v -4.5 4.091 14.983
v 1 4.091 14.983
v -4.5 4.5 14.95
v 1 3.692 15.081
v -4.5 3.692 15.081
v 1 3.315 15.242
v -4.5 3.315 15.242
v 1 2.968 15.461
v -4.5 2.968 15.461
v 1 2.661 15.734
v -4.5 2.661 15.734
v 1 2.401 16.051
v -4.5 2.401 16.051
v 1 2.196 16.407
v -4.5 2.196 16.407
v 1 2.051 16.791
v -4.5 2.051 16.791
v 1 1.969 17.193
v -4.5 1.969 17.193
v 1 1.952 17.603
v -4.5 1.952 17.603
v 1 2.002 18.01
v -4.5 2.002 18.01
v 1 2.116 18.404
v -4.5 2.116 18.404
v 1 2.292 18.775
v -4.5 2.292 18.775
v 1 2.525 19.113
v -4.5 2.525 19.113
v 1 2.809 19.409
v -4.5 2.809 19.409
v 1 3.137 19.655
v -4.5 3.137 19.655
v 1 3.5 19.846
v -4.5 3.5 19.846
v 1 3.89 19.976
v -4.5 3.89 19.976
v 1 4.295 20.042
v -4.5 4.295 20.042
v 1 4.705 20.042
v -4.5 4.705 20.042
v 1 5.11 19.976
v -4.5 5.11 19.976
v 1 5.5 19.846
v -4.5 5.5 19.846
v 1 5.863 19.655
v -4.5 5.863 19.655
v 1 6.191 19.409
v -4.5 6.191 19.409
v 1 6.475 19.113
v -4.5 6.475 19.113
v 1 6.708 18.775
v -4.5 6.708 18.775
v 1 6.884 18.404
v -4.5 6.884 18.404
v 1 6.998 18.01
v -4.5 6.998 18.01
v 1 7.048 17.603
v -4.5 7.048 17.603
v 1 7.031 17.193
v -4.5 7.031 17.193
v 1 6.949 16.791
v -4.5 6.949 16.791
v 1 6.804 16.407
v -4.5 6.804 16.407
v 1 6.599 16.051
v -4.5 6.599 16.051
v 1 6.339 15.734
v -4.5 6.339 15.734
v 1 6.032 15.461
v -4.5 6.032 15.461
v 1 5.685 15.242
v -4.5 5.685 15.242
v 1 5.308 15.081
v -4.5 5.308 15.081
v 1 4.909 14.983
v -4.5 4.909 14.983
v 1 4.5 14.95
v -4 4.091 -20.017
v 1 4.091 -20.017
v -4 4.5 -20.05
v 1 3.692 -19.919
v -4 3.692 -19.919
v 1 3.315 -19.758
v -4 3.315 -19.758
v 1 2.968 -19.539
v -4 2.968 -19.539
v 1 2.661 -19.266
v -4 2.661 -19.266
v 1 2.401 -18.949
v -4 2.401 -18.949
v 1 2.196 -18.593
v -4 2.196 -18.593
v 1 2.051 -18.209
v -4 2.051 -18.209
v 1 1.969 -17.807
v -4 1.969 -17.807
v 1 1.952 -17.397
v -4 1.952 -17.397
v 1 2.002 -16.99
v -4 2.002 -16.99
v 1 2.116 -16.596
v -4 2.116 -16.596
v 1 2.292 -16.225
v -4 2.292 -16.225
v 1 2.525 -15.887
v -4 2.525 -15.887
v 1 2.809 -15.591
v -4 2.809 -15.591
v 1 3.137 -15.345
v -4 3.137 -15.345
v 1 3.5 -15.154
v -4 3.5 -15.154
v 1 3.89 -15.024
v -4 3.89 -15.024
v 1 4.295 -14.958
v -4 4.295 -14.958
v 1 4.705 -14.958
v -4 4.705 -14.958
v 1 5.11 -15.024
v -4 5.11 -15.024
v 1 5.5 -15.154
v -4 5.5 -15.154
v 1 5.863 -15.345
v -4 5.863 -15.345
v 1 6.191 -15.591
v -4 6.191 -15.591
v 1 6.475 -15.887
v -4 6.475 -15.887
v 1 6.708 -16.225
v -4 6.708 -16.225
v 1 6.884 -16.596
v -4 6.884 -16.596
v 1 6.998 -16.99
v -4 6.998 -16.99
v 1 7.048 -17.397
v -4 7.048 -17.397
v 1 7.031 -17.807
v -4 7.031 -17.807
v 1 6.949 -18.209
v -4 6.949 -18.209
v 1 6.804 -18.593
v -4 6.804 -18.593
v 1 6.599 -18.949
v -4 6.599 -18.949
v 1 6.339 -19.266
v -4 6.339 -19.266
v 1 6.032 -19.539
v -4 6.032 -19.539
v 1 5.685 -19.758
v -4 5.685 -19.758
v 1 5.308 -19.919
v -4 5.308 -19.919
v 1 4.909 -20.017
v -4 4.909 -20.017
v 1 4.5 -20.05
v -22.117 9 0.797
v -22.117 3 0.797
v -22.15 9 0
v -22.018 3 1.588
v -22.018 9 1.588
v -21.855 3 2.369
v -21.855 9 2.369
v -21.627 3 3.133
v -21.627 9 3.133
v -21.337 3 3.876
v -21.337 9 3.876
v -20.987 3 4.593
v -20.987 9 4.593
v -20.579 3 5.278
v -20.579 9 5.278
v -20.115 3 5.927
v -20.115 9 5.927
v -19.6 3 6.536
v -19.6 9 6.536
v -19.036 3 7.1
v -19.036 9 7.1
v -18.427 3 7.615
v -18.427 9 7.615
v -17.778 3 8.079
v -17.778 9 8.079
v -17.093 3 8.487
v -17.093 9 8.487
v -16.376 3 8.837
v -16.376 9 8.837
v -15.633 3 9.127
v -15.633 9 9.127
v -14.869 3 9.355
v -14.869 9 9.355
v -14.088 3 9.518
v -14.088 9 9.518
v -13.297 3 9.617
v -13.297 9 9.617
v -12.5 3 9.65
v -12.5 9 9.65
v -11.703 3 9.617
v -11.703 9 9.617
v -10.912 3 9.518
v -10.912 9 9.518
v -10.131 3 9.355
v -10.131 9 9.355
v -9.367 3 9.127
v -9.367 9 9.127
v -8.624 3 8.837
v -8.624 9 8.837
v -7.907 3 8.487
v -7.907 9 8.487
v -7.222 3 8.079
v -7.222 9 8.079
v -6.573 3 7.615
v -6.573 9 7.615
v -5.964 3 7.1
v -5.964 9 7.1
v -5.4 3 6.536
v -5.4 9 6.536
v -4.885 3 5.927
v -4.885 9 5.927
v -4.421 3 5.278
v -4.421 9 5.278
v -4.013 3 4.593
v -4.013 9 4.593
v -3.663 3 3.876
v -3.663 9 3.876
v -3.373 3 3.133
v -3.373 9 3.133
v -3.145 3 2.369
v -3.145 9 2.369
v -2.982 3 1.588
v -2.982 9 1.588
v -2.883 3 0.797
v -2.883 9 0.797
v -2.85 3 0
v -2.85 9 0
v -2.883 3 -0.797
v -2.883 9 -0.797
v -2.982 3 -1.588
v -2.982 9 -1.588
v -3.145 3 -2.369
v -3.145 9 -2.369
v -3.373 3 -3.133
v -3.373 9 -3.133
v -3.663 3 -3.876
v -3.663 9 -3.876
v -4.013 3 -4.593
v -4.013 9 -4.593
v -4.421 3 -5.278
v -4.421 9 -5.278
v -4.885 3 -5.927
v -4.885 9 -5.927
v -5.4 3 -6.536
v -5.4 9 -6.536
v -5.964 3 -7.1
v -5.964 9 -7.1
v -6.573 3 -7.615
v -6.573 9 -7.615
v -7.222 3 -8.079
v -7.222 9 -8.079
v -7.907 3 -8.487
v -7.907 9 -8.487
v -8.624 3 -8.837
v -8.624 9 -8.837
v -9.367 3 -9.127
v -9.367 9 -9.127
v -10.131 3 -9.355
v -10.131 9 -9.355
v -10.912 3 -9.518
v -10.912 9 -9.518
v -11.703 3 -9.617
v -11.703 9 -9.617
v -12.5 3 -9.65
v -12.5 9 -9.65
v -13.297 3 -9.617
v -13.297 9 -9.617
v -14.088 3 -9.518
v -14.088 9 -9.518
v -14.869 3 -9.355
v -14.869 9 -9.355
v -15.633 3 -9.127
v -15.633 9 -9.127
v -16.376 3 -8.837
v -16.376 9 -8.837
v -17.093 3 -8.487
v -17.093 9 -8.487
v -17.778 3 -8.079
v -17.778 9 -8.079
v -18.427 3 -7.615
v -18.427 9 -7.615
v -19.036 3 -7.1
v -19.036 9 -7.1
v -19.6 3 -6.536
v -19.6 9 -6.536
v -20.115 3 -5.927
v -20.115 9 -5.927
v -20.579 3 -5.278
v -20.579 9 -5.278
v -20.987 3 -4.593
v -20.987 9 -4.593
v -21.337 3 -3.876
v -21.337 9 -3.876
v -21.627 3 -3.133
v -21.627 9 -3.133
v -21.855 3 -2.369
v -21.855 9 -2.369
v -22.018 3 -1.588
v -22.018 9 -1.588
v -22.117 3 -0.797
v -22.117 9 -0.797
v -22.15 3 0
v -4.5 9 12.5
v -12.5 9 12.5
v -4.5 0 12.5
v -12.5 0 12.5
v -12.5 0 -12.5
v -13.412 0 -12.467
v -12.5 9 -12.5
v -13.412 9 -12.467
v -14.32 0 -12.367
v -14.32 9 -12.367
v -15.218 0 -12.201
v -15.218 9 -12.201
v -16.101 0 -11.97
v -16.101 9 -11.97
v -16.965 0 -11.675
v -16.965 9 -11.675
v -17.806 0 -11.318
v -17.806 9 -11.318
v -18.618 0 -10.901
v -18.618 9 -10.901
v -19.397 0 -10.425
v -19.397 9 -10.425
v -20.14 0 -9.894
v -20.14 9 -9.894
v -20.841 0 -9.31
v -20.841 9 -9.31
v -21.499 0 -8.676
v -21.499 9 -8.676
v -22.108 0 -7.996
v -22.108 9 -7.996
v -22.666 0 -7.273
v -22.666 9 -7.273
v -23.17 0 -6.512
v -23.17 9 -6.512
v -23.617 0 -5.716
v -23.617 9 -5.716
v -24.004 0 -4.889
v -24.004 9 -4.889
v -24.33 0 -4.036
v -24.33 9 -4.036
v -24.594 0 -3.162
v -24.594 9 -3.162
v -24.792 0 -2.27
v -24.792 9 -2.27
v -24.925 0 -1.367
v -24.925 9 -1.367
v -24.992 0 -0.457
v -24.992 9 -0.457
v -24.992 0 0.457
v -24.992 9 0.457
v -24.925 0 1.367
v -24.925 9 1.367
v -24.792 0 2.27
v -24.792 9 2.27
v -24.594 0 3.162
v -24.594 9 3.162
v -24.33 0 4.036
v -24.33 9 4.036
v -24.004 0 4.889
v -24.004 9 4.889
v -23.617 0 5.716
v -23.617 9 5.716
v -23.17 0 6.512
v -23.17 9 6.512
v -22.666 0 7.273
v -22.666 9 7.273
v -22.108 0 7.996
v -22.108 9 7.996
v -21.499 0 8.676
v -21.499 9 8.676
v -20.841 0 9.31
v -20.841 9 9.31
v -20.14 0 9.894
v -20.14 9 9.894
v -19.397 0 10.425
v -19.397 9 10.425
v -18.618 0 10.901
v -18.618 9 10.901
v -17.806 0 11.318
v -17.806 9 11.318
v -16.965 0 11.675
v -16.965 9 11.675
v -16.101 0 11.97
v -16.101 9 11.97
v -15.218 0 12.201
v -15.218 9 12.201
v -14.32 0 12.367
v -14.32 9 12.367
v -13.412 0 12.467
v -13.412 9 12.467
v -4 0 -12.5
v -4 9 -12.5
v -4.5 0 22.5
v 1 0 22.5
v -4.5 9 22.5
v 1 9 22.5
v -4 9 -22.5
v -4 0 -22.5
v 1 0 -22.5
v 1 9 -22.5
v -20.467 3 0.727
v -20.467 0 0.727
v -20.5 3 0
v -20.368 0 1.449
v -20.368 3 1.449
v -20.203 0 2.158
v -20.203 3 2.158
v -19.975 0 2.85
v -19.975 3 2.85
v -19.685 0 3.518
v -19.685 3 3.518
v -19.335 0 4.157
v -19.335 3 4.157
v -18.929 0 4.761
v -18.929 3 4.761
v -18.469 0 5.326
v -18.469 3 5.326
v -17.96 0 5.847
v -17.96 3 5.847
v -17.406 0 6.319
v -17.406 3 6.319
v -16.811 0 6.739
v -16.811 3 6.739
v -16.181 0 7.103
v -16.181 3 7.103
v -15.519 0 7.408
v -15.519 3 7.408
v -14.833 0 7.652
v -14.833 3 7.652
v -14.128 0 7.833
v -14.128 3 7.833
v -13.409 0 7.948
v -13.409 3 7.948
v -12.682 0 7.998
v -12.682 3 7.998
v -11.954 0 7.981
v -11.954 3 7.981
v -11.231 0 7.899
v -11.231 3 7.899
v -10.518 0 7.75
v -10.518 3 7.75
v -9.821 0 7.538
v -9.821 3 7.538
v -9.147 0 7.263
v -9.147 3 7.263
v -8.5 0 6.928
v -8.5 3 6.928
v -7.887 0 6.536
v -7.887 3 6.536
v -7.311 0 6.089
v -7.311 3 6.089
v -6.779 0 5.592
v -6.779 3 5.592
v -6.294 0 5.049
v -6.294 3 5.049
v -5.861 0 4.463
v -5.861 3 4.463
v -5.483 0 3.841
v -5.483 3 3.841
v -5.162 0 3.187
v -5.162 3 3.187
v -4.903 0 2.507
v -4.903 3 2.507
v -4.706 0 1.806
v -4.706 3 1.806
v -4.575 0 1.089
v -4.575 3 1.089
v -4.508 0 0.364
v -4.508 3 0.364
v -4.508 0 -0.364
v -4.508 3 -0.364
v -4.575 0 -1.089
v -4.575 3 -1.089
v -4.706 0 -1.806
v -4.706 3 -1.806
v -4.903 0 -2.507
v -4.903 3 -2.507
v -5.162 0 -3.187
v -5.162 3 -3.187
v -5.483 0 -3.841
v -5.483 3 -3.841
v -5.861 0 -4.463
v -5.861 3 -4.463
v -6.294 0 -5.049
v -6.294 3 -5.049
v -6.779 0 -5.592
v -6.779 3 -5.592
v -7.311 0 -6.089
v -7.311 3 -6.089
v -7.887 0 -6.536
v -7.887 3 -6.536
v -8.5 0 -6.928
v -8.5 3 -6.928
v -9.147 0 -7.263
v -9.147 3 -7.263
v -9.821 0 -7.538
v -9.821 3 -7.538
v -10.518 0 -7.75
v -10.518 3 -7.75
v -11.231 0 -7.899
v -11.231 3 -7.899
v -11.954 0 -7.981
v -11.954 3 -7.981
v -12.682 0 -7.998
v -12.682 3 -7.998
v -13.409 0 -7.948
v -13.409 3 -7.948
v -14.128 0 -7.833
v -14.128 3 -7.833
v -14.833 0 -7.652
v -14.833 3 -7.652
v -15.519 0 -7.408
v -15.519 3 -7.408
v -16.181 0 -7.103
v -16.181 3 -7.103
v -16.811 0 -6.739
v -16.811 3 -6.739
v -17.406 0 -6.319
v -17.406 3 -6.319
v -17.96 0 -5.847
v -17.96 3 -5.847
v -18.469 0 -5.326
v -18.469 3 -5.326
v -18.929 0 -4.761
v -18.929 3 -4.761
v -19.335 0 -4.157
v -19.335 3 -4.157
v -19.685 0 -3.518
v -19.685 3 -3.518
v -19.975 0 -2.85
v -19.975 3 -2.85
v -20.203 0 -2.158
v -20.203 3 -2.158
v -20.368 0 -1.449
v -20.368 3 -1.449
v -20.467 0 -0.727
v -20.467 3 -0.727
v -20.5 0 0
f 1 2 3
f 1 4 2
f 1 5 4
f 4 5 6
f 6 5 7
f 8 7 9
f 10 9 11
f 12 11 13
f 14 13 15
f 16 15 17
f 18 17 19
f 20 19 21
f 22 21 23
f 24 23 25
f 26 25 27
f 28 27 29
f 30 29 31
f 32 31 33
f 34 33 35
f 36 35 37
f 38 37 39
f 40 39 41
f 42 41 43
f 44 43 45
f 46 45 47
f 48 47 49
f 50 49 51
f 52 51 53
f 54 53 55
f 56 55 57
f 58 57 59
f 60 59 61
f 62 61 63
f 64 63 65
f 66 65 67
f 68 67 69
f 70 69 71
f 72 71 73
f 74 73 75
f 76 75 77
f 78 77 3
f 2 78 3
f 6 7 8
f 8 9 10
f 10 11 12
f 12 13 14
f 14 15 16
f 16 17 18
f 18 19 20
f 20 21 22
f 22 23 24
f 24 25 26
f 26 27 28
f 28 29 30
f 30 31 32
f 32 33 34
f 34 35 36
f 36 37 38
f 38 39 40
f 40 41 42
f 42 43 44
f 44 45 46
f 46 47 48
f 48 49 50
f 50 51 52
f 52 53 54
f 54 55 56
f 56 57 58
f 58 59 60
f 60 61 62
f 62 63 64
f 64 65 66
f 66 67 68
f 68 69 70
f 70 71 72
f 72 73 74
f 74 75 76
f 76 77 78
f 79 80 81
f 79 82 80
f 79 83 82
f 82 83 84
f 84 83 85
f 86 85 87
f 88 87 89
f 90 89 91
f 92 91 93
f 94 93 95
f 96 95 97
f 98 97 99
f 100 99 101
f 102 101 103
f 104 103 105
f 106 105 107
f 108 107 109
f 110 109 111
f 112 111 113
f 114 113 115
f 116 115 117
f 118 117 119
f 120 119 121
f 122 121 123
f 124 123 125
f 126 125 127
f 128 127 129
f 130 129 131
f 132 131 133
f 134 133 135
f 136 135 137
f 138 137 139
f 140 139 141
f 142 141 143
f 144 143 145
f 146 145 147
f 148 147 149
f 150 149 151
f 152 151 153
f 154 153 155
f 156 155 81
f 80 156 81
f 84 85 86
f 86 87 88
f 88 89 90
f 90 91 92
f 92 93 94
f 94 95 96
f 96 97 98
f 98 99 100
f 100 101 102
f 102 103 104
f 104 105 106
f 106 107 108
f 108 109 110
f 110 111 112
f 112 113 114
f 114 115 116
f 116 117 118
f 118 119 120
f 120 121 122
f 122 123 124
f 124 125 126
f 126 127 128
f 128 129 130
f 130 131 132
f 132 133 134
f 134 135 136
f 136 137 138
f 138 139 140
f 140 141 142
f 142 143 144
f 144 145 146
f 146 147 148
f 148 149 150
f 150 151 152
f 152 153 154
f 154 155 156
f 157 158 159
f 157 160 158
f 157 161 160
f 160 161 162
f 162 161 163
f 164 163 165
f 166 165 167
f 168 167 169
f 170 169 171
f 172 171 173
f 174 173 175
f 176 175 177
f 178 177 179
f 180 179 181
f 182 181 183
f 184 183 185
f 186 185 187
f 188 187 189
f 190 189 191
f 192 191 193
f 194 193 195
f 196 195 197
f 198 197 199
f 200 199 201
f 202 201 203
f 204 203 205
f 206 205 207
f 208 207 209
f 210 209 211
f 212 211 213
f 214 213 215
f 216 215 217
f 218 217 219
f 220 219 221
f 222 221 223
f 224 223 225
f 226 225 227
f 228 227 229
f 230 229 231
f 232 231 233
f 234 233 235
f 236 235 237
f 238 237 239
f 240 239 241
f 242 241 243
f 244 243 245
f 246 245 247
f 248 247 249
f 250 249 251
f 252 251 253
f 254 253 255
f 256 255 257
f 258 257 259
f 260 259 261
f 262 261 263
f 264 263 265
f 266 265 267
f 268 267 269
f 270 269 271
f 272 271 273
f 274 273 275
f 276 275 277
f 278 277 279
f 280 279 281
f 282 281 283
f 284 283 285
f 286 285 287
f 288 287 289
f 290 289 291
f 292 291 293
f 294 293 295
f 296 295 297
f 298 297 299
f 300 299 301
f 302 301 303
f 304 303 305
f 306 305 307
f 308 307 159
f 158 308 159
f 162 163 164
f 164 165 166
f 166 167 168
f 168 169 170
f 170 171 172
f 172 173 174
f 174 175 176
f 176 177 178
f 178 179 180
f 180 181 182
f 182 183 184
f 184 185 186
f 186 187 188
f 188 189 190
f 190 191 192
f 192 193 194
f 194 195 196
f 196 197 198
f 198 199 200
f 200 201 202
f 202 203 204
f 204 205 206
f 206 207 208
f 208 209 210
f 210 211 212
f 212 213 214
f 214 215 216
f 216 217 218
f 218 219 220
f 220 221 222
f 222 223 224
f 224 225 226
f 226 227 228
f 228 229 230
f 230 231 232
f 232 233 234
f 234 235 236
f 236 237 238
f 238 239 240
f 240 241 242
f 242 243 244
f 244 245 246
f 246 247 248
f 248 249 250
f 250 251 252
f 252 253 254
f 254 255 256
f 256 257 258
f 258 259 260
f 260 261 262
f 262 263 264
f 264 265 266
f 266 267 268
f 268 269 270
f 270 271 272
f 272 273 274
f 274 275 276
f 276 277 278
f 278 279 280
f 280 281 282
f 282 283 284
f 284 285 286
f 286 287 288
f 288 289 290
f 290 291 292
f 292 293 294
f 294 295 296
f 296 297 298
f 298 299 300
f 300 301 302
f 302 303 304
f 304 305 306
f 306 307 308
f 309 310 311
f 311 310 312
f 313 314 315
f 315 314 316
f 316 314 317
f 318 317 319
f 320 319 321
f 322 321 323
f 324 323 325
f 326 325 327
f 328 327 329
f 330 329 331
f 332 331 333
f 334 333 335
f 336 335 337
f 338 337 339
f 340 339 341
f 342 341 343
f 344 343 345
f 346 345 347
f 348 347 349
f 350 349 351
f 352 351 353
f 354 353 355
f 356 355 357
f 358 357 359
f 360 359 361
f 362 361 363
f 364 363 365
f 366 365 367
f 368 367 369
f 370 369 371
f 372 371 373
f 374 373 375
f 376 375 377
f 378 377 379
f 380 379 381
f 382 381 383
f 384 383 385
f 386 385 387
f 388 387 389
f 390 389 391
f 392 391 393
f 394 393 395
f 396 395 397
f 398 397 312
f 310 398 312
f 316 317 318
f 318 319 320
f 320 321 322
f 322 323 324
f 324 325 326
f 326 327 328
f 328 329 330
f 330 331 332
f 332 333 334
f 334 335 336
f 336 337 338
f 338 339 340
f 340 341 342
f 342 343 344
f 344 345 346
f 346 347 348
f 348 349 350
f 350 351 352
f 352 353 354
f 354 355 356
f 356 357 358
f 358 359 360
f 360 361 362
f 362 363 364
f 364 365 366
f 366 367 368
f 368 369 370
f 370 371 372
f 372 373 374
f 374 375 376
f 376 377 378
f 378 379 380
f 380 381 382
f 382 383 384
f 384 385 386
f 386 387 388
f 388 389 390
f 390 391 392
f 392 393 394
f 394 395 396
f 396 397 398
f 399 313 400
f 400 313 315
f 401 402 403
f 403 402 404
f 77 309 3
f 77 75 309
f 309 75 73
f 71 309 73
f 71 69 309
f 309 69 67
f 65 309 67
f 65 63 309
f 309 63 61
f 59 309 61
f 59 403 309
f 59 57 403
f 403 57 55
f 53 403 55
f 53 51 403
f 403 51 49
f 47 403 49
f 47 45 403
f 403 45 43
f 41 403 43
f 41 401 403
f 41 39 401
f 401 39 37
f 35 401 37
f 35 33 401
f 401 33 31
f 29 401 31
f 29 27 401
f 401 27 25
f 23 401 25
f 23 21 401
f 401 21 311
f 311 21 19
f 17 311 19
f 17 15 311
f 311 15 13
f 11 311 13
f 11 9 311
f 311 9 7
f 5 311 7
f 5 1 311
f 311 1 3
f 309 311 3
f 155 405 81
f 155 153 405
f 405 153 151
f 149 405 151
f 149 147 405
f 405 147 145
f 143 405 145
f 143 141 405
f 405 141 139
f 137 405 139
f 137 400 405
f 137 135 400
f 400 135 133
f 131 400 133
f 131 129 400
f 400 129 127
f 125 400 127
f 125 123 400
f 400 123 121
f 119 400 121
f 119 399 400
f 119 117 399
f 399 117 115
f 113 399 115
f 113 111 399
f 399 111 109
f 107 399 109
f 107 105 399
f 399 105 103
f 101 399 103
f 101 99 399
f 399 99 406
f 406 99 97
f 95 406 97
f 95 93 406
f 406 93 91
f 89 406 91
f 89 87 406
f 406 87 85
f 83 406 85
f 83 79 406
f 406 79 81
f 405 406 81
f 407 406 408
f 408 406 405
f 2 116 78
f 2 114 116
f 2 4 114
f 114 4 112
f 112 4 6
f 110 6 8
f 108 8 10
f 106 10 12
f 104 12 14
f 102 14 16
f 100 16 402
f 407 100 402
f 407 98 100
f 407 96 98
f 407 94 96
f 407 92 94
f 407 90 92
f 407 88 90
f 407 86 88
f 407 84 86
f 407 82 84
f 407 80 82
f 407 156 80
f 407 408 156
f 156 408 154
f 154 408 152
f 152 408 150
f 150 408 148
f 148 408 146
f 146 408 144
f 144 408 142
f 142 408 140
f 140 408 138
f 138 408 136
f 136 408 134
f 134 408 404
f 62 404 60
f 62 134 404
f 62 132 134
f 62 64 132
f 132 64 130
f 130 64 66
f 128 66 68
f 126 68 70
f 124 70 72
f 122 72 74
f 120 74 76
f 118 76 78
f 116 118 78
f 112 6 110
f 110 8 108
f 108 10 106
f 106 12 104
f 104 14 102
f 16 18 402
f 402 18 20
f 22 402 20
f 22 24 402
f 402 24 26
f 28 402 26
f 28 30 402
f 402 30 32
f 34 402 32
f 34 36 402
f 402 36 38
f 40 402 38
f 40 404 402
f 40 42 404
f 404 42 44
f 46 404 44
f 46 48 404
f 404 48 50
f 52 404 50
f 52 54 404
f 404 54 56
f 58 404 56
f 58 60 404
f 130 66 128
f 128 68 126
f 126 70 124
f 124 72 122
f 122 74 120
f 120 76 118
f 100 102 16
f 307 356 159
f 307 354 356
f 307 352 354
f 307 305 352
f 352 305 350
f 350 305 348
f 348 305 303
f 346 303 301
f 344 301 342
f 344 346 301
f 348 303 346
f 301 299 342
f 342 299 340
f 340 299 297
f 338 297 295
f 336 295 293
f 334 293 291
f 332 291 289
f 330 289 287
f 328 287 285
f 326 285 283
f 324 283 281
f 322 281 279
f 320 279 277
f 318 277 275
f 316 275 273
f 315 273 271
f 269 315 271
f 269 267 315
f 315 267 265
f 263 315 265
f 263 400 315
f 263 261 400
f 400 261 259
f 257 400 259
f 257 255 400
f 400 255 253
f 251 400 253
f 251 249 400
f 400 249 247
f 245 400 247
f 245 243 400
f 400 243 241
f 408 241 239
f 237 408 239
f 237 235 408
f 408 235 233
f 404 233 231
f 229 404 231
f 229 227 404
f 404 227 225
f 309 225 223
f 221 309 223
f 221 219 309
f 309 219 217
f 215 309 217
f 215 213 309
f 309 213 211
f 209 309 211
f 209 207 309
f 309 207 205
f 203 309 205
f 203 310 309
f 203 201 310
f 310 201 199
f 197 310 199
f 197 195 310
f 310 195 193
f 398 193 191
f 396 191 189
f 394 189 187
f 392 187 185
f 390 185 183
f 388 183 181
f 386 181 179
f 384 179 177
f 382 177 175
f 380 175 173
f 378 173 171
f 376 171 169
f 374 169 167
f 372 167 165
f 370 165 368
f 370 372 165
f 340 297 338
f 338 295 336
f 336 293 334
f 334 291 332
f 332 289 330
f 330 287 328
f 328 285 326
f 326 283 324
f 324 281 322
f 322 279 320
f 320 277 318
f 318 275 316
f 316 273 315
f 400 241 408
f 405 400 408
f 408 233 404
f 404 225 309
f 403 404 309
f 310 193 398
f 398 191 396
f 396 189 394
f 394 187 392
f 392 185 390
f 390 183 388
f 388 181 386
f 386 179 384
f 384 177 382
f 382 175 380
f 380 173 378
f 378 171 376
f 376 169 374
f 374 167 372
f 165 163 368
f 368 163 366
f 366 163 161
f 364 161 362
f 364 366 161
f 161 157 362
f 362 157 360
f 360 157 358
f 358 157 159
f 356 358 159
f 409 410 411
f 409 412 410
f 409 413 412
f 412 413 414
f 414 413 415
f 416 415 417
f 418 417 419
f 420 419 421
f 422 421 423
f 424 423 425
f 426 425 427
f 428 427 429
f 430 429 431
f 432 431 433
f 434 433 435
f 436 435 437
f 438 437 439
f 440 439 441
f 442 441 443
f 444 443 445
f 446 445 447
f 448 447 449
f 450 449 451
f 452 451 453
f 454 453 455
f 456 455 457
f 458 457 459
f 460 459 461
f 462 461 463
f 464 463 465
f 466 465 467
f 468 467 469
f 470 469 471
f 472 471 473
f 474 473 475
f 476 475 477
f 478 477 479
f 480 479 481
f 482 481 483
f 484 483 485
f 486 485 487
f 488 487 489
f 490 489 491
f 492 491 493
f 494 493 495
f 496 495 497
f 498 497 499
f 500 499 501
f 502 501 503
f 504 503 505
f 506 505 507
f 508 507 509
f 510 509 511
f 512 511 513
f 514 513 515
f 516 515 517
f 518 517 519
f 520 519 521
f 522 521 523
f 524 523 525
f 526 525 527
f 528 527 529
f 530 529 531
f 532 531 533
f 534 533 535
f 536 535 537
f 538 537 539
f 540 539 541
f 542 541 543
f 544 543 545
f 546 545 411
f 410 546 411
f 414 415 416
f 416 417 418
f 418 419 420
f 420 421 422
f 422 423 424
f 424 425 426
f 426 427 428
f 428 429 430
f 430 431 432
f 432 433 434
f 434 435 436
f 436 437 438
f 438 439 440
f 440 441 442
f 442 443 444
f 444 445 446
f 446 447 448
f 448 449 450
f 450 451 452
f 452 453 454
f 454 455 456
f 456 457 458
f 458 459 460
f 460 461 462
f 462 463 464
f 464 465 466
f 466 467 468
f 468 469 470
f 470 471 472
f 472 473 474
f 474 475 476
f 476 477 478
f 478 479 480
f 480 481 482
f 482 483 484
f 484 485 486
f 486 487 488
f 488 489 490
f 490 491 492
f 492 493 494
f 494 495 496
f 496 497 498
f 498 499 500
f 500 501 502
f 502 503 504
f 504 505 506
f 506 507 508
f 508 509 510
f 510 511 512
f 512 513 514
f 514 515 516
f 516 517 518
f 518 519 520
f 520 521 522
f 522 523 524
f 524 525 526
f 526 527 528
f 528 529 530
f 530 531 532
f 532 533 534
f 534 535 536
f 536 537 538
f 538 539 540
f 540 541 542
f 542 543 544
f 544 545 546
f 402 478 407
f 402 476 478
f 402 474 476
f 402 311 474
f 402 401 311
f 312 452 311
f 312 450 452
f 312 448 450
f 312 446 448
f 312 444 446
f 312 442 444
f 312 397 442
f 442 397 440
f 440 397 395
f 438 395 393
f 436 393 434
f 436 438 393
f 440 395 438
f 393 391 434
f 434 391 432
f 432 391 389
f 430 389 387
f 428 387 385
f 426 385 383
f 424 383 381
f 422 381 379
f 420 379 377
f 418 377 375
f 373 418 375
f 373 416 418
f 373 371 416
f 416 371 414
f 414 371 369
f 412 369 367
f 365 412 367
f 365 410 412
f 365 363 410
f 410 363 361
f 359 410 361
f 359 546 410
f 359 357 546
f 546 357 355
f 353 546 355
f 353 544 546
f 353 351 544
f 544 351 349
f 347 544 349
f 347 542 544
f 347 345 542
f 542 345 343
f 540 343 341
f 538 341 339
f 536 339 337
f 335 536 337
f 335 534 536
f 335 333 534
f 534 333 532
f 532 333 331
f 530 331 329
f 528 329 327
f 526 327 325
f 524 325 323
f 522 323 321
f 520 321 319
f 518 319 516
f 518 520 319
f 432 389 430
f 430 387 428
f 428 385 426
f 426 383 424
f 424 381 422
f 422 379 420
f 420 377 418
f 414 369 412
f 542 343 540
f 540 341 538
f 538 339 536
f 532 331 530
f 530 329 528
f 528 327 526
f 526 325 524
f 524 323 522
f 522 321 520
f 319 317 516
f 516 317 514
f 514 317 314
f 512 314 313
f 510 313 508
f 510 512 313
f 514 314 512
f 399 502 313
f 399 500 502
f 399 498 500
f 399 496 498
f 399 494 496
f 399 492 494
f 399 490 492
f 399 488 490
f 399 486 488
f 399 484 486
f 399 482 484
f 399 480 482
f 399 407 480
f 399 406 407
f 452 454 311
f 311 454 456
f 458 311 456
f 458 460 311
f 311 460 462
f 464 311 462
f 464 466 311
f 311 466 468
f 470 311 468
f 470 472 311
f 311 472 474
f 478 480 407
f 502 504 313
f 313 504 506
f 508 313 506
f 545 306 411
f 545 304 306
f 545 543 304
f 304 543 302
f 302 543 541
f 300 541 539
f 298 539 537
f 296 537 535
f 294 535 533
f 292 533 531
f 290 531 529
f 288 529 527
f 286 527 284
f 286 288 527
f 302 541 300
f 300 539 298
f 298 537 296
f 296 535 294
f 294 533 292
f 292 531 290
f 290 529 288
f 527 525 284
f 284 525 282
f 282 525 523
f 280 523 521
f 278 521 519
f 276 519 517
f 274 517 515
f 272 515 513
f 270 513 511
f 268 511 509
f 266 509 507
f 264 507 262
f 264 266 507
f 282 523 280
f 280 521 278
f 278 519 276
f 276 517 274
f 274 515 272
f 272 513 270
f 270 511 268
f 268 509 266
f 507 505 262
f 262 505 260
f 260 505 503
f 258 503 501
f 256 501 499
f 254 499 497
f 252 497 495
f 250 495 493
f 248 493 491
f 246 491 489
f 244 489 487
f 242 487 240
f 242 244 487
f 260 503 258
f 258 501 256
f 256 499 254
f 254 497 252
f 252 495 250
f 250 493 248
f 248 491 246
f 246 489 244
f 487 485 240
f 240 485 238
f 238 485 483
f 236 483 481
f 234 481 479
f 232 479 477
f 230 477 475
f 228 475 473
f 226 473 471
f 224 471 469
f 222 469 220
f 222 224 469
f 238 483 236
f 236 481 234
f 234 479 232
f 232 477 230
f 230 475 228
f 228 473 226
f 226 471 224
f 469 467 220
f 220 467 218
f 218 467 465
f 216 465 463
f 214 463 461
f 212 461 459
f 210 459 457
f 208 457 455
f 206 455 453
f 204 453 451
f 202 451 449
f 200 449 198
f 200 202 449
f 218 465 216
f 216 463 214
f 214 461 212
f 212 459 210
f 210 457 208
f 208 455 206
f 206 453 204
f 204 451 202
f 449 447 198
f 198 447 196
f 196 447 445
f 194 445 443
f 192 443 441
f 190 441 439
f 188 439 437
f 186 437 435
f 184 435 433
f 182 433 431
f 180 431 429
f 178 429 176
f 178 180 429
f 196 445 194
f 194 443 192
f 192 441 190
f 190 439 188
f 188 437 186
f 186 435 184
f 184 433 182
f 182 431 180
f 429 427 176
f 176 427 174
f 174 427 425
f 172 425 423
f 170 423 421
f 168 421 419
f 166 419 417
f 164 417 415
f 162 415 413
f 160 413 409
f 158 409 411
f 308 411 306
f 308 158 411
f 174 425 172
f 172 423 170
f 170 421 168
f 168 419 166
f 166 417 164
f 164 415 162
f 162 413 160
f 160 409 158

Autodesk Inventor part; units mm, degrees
ref_plane "YZ Plane" through (0, 0, 0) normal (1, 0, 0) x (0, 1, 0)
ref_plane "XZ Plane" through (0, 0, 0) normal (0, 1, 0) x (-1, 0, 0)
ref_plane "XY Plane" through (0, 0, 0) normal (0, 0, 1) x (1, 0, 0)
sketch "Sketch1" plane through (0, 0, 0) normal (0, 1, 0) x (-1, 0, 0)
  line L0 (0, 0) -> (12.5, 0)
  circle A0 centre (12.5, 0) radius 9.65
  circle A1 centre (12.5, 0) radius 12.5
  line L1 (12.5, 12.5) -> (-1, 12.5)
  line L2 (-1, 12.5) -> (-1, -12.5)
  line L3 (-1, -12.5) -> (12.5, -12.5)
  circle A2 centre (12.5, 0) radius 8
  line L4 (-1, -12.5) -> (4, -12.5)
  line L5 (4, -12.5) -> (4, -22.5)
  line L6 (4, -22.5) -> (-1, -22.5)
  line L7 (-1, -22.5) -> (-1, -12.5)
  line L8 (-1, 12.5) -> (-1, 22.5)
  line L9 (-1, 22.5) -> (4.5, 22.5)
  line L10 (4.5, 22.5) -> (4.5, 12.5)
  dimension "d0" = 12.5
  dimension "d1" = 19.3
  dimension "d2" = 16
  dimension "d7" = 5
  dimension "d8" = 10
  dimension "d9" = 10
extrude "Extrusion3" add sketch "Sketch1" along normal blind 3 contours A0
extrude "Extrusion4" add sketch "Sketch1" along normal blind 9 contours A1 L3 L2 L1 | A1 | L1 L8 L9 L10 | L5 L6 L7 L3
sketch "Sketch4" plane through (1, 0, 22.5) normal (1, 0, 0) x (0, 0, -1)
  line L0 (0, 0) -> (0, 9) projected
  line L1 (0, 4.5) -> (5, 4.5)
  line L2 (45, 0) -> (45, 9) projected
  line L3 (45, 4.5) -> (40, 4.5)
  circle A0 centre (5, 4.5) radius 2.55
  circle A1 centre (40, 4.5) radius 2.55
  point P0 (22.5, 0)
  dimension "d14" = 5
  dimension "d15" = 5
  dimension "d16" = 5.1
  dimension "d17" = 5.1
extrude "Extrusion5" cut sketch "Sketch4" against normal blind 7
properties part number "wheel_shaft_holder_small"
